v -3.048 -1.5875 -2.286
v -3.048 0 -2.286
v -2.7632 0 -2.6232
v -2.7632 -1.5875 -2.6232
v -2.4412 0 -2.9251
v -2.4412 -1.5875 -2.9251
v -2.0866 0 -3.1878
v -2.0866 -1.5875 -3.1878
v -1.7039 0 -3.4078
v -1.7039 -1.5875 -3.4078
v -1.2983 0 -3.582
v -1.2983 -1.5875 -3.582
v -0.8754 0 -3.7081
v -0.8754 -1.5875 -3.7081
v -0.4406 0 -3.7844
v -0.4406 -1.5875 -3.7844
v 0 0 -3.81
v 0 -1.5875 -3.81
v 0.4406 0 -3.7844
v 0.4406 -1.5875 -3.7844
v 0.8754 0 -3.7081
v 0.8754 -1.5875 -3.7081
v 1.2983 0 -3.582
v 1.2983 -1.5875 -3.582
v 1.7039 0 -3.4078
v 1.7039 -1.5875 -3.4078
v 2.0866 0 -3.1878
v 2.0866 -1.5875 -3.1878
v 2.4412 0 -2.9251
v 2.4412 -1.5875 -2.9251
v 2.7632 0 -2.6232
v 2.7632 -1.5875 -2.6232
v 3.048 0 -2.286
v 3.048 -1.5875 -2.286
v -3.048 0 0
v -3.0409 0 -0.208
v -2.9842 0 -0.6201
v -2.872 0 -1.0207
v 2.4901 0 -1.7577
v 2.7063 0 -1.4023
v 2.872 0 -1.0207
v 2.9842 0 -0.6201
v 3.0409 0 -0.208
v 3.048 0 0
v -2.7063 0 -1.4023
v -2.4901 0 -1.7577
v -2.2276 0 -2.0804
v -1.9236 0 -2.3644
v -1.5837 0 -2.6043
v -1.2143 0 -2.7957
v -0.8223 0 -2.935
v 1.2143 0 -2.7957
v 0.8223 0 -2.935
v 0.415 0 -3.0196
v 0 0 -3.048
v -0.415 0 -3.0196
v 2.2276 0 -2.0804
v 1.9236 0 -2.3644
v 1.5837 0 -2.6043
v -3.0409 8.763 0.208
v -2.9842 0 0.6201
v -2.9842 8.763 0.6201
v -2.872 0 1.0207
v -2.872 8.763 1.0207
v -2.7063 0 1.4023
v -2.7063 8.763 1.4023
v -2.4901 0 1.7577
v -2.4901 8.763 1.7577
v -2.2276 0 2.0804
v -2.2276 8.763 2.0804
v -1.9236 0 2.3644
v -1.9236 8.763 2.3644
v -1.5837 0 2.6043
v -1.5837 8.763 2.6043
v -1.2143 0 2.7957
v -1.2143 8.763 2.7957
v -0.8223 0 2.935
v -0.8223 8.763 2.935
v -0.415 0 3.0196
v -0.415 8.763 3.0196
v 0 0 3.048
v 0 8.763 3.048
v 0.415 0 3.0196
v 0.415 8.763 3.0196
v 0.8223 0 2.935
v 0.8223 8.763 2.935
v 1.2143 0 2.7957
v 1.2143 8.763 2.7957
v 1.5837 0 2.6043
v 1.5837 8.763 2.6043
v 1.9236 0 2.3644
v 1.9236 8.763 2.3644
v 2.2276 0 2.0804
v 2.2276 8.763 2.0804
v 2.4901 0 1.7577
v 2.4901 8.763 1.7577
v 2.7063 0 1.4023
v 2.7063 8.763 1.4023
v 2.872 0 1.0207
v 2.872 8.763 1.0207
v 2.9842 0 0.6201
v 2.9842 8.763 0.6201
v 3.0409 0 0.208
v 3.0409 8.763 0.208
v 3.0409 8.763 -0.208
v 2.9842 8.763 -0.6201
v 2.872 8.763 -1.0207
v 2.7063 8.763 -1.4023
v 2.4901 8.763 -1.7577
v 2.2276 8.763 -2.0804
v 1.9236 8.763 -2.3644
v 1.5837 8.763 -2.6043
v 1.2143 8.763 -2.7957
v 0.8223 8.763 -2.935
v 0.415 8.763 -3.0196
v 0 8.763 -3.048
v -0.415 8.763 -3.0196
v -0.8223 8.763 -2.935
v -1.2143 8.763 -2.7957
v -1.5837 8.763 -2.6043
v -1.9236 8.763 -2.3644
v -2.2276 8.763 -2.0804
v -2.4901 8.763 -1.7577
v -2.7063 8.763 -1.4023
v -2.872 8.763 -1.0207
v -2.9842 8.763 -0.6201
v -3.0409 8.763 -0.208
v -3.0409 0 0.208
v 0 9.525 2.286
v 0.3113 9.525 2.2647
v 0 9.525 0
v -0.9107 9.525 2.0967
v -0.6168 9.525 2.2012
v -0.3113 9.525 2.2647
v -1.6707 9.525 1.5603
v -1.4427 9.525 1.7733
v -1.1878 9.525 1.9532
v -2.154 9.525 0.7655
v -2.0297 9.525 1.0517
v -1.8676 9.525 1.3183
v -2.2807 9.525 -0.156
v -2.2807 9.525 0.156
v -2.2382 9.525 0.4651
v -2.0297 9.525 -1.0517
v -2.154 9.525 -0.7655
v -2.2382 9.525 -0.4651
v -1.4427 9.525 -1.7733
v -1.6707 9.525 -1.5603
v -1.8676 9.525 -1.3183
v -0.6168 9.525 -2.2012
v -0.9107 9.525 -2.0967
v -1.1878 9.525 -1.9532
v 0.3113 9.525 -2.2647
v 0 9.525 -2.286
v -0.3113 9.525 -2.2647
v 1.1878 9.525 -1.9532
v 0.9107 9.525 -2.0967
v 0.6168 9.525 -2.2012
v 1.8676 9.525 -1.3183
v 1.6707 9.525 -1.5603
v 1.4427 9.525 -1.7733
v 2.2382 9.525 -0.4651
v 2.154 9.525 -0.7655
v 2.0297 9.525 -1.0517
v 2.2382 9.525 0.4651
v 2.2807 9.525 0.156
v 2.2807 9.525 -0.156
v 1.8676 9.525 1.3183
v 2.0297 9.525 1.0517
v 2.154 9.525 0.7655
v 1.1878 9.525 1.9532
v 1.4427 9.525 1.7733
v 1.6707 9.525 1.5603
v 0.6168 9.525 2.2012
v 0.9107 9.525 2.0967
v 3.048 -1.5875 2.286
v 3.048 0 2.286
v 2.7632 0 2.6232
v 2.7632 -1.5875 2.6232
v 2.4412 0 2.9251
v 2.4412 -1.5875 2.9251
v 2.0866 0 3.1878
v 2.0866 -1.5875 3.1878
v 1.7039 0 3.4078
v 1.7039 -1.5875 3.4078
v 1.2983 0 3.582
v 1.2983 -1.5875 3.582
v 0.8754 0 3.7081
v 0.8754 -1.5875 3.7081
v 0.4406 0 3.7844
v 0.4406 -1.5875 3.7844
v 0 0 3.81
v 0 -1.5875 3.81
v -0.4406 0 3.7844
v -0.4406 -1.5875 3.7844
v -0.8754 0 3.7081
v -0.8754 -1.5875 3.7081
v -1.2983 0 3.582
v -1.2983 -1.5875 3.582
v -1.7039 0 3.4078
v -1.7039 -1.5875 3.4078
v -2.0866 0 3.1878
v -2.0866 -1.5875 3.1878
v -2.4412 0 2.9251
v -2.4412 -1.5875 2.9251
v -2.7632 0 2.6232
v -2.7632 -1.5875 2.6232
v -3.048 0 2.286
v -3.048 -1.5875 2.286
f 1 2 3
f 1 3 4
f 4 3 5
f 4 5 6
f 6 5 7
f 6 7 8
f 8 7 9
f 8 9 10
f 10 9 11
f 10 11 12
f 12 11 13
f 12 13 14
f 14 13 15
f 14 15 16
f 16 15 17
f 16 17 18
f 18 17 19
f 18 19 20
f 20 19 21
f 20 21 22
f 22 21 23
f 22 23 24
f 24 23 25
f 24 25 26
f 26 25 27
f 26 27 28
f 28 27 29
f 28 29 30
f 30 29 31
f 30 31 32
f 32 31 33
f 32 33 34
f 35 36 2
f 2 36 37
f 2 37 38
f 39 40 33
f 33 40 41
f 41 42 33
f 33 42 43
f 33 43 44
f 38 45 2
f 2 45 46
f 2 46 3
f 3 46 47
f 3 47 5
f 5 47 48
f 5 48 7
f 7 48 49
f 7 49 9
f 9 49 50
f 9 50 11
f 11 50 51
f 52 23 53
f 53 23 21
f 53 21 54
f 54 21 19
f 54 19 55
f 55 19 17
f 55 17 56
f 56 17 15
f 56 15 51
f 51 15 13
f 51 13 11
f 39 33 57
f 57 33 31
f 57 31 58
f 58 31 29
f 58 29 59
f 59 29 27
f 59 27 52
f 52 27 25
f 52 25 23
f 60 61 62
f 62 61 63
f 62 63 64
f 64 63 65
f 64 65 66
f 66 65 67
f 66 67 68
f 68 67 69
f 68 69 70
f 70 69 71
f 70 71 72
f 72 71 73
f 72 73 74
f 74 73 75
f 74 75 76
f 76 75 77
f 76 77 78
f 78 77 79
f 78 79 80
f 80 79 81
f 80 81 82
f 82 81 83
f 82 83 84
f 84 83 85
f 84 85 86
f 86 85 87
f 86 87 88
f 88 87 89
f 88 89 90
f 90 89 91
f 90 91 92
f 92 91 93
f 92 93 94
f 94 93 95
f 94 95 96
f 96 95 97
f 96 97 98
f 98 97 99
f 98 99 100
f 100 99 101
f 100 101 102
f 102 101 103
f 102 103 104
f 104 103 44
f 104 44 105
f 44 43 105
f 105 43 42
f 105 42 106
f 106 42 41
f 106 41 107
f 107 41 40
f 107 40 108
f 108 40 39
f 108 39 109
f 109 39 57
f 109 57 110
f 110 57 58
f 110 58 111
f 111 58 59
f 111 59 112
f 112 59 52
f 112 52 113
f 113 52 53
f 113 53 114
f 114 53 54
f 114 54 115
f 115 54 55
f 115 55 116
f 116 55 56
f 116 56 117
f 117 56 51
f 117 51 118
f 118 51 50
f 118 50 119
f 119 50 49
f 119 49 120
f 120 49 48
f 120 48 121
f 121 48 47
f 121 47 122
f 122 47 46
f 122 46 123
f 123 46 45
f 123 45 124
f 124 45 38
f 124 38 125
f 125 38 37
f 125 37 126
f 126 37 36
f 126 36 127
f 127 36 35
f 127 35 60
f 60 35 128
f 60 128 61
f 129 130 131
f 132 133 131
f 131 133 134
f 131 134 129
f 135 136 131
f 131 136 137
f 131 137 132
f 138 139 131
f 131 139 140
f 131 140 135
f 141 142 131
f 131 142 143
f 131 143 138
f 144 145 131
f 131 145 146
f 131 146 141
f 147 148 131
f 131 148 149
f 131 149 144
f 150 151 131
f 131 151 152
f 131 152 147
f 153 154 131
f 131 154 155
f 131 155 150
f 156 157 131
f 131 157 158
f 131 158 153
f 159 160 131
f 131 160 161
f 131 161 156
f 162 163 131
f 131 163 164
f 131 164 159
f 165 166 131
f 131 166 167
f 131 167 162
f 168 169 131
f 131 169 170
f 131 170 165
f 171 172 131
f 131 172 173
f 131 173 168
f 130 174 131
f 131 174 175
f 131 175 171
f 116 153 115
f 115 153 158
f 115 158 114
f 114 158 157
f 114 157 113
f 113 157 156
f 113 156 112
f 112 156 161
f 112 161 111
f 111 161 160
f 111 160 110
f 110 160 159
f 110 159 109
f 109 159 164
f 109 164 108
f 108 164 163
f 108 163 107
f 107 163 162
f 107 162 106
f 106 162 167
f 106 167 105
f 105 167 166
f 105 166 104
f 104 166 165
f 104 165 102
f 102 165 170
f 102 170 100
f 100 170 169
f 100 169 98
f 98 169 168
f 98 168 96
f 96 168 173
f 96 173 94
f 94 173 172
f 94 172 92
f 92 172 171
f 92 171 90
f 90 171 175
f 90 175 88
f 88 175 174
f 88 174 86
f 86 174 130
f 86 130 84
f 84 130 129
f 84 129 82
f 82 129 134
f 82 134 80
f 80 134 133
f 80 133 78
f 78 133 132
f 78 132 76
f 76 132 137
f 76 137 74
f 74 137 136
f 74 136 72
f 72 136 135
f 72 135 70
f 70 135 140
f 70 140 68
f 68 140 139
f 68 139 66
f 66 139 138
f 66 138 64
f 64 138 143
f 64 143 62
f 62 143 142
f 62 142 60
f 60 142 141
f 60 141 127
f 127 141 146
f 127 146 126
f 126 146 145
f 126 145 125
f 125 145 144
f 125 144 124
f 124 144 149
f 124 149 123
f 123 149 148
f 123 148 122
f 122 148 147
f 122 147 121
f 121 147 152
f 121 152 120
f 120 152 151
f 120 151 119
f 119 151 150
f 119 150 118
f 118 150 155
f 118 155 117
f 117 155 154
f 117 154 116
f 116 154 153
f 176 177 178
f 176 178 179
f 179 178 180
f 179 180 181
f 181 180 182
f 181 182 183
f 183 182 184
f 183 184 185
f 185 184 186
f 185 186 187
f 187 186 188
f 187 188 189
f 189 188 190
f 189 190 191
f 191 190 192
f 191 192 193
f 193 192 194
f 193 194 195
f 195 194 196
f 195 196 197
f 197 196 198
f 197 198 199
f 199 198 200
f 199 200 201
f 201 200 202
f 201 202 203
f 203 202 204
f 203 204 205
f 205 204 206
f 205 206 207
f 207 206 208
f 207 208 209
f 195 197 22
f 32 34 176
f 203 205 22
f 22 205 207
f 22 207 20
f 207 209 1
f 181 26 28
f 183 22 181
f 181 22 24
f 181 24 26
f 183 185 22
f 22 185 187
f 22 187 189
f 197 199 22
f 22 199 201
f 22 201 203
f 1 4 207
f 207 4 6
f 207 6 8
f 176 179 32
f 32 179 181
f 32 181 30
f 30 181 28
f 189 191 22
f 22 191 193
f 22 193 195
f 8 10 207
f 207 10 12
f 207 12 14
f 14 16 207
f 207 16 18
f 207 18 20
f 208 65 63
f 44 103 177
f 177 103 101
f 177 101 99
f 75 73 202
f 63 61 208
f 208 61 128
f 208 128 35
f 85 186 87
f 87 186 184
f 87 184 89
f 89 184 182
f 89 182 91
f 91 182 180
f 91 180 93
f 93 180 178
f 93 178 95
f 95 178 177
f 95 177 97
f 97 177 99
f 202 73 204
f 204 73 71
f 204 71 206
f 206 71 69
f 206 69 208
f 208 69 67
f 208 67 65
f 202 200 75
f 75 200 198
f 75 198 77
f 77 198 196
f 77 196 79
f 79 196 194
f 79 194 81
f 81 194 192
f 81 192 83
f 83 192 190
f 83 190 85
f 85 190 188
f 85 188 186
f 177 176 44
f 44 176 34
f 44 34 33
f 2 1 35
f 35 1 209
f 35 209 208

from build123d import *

# Parameters (mm, degrees)
SKETCH1_R           = 3.048
BOSS_EXTRUDE1_DEPTH = 9.525
CHAMFER1_SIZE       = 0.762
SKETCH2_R           = 3.81
BOSS_EXTRUDE2_DEPTH = 1.5875
SKETCH4_W           = 5.15979919
SKETCH4_H           = 9.269210688
SKETCH4_W_2         = 9.619339919
SKETCH4_H_2         = 8.458385102
CUT_EXTRUDE1_DEPTH  = 11.943391842


with BuildPart() as part:
    # Sketch1 → Boss-Extrude1 (new body)
    with BuildSketch(Plane(origin=(0, 0, 0), x_dir=(1, 0, 0), z_dir=(0, 1, 0))):
        with Locations(Location((0, 0, 0), (0, 0, 90))):
            Circle(SKETCH1_R)
    extrude(amount=BOSS_EXTRUDE1_DEPTH)

    # Chamfer1
    chamfer1_edges = [part.edges().sort_by_distance(p)[0] for p in [
        (0, 9.525, 3.048),
    ]]
    chamfer(chamfer1_edges, length=CHAMFER1_SIZE)

    # Sketch2 → Boss-Extrude2 (add)
    with BuildSketch(Plane.XZ):
        with Locations(Location((0, 0, 0), (0, 0, 270))):
            Circle(SKETCH2_R)
    extrude(amount=BOSS_EXTRUDE2_DEPTH)

    # Sketch4 → Cut-Extrude1 (cut, through all)
    with BuildSketch(Plane(origin=(0, 0, 0), x_dir=(1, 0, 0), z_dir=(0, 1, 0))):
        with Locations((-5.627899595, 0)):
            Rectangle(SKETCH4_W, SKETCH4_H)
        with Locations((7.85766996, 0)):
            Rectangle(SKETCH4_W_2, SKETCH4_H_2)
    extrude(amount=-CUT_EXTRUDE1_DEPTH, mode=Mode.SUBTRACT)


solid = part.part
